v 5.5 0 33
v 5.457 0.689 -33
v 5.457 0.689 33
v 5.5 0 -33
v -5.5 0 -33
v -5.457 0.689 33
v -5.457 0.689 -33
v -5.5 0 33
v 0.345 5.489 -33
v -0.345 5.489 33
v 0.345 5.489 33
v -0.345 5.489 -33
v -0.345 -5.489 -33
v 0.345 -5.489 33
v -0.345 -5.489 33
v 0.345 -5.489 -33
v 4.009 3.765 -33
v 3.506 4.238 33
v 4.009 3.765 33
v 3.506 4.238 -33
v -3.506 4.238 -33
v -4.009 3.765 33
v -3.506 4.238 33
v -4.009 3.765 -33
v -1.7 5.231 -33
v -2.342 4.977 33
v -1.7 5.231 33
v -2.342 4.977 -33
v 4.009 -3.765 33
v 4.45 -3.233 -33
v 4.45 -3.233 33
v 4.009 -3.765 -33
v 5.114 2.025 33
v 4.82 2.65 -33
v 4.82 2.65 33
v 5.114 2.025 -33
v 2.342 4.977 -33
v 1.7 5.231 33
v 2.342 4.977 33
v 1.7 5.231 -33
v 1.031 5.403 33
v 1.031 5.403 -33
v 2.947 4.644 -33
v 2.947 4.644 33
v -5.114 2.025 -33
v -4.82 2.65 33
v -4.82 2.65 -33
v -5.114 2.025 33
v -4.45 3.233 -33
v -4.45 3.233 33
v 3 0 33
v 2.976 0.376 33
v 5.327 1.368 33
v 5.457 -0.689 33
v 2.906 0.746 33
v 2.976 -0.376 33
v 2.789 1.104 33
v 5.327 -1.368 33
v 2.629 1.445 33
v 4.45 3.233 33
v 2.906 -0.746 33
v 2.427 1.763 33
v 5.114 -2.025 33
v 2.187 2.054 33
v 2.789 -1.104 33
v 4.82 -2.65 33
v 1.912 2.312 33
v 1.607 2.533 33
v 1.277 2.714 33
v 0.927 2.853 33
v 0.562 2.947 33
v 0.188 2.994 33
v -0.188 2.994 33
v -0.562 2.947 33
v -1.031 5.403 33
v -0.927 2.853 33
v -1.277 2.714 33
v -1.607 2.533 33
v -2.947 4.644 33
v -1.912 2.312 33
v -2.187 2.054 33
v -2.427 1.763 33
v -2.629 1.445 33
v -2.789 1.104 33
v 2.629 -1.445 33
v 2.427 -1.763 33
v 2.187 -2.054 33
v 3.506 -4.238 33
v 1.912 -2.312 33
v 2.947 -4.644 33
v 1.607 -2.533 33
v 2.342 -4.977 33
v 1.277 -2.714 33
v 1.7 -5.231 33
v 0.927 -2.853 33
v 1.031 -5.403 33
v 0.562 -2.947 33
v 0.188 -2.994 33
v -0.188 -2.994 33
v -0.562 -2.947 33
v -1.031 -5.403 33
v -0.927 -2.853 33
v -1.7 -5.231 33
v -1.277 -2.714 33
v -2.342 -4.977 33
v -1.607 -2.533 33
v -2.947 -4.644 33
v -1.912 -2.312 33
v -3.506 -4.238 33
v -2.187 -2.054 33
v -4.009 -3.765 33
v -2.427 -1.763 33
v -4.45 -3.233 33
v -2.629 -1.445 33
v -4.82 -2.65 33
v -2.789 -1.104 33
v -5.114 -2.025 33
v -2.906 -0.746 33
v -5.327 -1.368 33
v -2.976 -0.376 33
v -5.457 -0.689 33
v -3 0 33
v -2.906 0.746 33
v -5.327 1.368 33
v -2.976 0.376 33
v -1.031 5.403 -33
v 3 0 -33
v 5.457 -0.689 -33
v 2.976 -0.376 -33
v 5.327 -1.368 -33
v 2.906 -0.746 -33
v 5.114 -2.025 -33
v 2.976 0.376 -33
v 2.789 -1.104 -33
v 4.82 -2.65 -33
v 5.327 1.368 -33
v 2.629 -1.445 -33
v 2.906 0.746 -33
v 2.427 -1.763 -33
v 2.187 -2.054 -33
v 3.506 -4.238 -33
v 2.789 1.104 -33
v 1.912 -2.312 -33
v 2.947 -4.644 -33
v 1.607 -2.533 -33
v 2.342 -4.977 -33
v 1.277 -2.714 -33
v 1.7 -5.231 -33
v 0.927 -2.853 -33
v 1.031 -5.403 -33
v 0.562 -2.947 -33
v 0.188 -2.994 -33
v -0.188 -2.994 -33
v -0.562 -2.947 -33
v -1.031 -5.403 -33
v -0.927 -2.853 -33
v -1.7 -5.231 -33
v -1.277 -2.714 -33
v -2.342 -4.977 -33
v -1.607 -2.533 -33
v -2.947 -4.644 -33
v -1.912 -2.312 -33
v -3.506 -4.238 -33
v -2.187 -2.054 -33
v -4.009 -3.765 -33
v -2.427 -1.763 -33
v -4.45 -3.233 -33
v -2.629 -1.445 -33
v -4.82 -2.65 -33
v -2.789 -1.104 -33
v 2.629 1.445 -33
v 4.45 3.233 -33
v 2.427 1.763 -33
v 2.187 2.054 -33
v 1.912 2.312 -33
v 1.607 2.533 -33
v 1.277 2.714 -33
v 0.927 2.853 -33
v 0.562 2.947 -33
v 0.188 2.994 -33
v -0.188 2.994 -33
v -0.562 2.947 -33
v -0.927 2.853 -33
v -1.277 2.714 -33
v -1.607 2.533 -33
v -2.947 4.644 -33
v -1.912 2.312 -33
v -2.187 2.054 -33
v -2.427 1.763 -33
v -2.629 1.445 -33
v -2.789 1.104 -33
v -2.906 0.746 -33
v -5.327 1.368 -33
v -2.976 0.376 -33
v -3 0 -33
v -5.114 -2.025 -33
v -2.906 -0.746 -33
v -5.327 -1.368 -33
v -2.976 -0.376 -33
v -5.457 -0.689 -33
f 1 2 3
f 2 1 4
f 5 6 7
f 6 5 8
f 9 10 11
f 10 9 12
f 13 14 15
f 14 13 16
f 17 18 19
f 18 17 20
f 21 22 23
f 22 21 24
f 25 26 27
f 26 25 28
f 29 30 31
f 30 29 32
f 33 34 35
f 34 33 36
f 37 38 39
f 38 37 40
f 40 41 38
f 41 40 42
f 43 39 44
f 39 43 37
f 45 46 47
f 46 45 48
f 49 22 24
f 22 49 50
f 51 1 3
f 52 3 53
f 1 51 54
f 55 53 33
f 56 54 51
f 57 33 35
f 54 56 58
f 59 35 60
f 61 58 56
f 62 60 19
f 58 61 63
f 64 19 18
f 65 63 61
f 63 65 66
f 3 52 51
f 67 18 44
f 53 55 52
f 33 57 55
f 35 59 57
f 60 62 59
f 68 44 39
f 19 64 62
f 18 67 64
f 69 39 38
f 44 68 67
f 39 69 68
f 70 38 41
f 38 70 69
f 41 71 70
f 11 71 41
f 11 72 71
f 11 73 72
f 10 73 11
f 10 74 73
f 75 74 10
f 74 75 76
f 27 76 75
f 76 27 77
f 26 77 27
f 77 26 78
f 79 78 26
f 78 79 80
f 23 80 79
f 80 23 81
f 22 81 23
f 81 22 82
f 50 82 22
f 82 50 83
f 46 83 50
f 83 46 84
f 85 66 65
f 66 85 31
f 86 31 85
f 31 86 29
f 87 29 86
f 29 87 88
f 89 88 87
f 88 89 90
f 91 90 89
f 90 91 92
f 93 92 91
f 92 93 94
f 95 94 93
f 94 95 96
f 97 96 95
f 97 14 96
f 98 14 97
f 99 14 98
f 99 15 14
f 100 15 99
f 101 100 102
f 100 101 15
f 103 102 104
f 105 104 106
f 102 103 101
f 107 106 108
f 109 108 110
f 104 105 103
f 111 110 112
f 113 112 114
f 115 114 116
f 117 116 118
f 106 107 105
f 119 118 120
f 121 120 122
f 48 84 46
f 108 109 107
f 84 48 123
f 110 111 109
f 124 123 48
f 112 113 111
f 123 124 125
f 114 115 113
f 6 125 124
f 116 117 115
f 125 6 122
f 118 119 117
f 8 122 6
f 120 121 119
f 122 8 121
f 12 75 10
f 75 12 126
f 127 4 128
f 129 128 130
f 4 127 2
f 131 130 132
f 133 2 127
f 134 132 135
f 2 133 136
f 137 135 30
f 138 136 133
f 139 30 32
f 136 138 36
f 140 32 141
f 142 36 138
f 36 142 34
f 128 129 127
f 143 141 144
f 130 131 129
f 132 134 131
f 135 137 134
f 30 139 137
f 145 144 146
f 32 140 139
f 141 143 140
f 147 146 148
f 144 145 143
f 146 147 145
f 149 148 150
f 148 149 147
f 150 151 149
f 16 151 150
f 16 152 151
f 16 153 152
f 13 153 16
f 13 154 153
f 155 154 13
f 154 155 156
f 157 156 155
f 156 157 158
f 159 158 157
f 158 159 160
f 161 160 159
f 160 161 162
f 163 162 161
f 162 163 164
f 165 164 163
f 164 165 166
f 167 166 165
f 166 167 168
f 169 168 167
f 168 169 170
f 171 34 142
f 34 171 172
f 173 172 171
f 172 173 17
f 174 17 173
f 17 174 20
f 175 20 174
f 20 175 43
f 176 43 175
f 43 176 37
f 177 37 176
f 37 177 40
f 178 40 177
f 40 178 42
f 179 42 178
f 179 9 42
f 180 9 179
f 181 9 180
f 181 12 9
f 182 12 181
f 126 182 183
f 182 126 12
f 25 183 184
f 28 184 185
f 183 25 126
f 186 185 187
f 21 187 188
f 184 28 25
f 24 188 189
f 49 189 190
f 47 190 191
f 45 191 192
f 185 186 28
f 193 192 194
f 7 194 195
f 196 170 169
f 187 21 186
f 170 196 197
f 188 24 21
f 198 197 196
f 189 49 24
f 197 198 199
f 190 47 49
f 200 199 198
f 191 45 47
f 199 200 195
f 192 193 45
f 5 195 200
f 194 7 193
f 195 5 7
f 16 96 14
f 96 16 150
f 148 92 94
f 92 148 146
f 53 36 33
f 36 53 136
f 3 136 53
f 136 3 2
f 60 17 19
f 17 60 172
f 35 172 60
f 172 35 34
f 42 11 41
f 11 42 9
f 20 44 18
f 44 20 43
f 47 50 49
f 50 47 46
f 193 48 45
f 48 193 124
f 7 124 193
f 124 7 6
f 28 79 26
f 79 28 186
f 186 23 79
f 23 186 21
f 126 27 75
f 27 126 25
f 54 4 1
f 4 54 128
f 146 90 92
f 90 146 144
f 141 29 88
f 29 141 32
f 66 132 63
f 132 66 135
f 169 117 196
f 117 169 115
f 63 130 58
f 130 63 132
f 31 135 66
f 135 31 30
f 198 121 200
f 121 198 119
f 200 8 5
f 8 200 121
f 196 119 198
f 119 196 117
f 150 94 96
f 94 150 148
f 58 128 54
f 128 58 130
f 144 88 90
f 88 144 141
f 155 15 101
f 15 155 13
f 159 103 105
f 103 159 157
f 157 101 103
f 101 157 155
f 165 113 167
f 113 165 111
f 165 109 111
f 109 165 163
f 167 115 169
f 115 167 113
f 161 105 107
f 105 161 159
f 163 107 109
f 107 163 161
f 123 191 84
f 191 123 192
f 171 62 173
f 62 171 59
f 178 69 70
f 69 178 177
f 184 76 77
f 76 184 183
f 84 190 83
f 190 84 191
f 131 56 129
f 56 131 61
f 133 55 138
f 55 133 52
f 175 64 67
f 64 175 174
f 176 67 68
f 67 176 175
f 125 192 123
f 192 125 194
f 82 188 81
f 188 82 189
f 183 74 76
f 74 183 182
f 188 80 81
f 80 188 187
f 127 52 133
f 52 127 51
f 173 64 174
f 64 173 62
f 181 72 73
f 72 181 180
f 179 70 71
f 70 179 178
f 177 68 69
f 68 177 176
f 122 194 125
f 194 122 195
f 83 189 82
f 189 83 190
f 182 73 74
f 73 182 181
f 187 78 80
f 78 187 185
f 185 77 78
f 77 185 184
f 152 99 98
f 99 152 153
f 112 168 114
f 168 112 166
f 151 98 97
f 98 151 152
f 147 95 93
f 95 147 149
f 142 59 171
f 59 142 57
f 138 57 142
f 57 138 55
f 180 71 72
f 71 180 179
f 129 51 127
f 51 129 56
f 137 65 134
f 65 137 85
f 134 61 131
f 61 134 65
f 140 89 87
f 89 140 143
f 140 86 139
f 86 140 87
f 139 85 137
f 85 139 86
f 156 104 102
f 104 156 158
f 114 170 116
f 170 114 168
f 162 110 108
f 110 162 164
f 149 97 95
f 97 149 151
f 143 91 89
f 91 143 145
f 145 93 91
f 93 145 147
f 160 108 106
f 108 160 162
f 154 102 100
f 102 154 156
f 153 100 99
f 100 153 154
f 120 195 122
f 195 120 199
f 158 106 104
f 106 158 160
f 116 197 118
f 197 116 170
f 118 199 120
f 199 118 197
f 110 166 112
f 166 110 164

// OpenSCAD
$fn = 50;


difference() {
	union() {
		translate(v = [0, 0, -33.0000000000]) {
			cylinder(h = 66, r = 5.5000000000);
		}
	}
	union() {
		translate(v = [0, 0, -100.0000000000]) {
			cylinder(h = 200, r = 3.0000000000);
		}
	}
}
